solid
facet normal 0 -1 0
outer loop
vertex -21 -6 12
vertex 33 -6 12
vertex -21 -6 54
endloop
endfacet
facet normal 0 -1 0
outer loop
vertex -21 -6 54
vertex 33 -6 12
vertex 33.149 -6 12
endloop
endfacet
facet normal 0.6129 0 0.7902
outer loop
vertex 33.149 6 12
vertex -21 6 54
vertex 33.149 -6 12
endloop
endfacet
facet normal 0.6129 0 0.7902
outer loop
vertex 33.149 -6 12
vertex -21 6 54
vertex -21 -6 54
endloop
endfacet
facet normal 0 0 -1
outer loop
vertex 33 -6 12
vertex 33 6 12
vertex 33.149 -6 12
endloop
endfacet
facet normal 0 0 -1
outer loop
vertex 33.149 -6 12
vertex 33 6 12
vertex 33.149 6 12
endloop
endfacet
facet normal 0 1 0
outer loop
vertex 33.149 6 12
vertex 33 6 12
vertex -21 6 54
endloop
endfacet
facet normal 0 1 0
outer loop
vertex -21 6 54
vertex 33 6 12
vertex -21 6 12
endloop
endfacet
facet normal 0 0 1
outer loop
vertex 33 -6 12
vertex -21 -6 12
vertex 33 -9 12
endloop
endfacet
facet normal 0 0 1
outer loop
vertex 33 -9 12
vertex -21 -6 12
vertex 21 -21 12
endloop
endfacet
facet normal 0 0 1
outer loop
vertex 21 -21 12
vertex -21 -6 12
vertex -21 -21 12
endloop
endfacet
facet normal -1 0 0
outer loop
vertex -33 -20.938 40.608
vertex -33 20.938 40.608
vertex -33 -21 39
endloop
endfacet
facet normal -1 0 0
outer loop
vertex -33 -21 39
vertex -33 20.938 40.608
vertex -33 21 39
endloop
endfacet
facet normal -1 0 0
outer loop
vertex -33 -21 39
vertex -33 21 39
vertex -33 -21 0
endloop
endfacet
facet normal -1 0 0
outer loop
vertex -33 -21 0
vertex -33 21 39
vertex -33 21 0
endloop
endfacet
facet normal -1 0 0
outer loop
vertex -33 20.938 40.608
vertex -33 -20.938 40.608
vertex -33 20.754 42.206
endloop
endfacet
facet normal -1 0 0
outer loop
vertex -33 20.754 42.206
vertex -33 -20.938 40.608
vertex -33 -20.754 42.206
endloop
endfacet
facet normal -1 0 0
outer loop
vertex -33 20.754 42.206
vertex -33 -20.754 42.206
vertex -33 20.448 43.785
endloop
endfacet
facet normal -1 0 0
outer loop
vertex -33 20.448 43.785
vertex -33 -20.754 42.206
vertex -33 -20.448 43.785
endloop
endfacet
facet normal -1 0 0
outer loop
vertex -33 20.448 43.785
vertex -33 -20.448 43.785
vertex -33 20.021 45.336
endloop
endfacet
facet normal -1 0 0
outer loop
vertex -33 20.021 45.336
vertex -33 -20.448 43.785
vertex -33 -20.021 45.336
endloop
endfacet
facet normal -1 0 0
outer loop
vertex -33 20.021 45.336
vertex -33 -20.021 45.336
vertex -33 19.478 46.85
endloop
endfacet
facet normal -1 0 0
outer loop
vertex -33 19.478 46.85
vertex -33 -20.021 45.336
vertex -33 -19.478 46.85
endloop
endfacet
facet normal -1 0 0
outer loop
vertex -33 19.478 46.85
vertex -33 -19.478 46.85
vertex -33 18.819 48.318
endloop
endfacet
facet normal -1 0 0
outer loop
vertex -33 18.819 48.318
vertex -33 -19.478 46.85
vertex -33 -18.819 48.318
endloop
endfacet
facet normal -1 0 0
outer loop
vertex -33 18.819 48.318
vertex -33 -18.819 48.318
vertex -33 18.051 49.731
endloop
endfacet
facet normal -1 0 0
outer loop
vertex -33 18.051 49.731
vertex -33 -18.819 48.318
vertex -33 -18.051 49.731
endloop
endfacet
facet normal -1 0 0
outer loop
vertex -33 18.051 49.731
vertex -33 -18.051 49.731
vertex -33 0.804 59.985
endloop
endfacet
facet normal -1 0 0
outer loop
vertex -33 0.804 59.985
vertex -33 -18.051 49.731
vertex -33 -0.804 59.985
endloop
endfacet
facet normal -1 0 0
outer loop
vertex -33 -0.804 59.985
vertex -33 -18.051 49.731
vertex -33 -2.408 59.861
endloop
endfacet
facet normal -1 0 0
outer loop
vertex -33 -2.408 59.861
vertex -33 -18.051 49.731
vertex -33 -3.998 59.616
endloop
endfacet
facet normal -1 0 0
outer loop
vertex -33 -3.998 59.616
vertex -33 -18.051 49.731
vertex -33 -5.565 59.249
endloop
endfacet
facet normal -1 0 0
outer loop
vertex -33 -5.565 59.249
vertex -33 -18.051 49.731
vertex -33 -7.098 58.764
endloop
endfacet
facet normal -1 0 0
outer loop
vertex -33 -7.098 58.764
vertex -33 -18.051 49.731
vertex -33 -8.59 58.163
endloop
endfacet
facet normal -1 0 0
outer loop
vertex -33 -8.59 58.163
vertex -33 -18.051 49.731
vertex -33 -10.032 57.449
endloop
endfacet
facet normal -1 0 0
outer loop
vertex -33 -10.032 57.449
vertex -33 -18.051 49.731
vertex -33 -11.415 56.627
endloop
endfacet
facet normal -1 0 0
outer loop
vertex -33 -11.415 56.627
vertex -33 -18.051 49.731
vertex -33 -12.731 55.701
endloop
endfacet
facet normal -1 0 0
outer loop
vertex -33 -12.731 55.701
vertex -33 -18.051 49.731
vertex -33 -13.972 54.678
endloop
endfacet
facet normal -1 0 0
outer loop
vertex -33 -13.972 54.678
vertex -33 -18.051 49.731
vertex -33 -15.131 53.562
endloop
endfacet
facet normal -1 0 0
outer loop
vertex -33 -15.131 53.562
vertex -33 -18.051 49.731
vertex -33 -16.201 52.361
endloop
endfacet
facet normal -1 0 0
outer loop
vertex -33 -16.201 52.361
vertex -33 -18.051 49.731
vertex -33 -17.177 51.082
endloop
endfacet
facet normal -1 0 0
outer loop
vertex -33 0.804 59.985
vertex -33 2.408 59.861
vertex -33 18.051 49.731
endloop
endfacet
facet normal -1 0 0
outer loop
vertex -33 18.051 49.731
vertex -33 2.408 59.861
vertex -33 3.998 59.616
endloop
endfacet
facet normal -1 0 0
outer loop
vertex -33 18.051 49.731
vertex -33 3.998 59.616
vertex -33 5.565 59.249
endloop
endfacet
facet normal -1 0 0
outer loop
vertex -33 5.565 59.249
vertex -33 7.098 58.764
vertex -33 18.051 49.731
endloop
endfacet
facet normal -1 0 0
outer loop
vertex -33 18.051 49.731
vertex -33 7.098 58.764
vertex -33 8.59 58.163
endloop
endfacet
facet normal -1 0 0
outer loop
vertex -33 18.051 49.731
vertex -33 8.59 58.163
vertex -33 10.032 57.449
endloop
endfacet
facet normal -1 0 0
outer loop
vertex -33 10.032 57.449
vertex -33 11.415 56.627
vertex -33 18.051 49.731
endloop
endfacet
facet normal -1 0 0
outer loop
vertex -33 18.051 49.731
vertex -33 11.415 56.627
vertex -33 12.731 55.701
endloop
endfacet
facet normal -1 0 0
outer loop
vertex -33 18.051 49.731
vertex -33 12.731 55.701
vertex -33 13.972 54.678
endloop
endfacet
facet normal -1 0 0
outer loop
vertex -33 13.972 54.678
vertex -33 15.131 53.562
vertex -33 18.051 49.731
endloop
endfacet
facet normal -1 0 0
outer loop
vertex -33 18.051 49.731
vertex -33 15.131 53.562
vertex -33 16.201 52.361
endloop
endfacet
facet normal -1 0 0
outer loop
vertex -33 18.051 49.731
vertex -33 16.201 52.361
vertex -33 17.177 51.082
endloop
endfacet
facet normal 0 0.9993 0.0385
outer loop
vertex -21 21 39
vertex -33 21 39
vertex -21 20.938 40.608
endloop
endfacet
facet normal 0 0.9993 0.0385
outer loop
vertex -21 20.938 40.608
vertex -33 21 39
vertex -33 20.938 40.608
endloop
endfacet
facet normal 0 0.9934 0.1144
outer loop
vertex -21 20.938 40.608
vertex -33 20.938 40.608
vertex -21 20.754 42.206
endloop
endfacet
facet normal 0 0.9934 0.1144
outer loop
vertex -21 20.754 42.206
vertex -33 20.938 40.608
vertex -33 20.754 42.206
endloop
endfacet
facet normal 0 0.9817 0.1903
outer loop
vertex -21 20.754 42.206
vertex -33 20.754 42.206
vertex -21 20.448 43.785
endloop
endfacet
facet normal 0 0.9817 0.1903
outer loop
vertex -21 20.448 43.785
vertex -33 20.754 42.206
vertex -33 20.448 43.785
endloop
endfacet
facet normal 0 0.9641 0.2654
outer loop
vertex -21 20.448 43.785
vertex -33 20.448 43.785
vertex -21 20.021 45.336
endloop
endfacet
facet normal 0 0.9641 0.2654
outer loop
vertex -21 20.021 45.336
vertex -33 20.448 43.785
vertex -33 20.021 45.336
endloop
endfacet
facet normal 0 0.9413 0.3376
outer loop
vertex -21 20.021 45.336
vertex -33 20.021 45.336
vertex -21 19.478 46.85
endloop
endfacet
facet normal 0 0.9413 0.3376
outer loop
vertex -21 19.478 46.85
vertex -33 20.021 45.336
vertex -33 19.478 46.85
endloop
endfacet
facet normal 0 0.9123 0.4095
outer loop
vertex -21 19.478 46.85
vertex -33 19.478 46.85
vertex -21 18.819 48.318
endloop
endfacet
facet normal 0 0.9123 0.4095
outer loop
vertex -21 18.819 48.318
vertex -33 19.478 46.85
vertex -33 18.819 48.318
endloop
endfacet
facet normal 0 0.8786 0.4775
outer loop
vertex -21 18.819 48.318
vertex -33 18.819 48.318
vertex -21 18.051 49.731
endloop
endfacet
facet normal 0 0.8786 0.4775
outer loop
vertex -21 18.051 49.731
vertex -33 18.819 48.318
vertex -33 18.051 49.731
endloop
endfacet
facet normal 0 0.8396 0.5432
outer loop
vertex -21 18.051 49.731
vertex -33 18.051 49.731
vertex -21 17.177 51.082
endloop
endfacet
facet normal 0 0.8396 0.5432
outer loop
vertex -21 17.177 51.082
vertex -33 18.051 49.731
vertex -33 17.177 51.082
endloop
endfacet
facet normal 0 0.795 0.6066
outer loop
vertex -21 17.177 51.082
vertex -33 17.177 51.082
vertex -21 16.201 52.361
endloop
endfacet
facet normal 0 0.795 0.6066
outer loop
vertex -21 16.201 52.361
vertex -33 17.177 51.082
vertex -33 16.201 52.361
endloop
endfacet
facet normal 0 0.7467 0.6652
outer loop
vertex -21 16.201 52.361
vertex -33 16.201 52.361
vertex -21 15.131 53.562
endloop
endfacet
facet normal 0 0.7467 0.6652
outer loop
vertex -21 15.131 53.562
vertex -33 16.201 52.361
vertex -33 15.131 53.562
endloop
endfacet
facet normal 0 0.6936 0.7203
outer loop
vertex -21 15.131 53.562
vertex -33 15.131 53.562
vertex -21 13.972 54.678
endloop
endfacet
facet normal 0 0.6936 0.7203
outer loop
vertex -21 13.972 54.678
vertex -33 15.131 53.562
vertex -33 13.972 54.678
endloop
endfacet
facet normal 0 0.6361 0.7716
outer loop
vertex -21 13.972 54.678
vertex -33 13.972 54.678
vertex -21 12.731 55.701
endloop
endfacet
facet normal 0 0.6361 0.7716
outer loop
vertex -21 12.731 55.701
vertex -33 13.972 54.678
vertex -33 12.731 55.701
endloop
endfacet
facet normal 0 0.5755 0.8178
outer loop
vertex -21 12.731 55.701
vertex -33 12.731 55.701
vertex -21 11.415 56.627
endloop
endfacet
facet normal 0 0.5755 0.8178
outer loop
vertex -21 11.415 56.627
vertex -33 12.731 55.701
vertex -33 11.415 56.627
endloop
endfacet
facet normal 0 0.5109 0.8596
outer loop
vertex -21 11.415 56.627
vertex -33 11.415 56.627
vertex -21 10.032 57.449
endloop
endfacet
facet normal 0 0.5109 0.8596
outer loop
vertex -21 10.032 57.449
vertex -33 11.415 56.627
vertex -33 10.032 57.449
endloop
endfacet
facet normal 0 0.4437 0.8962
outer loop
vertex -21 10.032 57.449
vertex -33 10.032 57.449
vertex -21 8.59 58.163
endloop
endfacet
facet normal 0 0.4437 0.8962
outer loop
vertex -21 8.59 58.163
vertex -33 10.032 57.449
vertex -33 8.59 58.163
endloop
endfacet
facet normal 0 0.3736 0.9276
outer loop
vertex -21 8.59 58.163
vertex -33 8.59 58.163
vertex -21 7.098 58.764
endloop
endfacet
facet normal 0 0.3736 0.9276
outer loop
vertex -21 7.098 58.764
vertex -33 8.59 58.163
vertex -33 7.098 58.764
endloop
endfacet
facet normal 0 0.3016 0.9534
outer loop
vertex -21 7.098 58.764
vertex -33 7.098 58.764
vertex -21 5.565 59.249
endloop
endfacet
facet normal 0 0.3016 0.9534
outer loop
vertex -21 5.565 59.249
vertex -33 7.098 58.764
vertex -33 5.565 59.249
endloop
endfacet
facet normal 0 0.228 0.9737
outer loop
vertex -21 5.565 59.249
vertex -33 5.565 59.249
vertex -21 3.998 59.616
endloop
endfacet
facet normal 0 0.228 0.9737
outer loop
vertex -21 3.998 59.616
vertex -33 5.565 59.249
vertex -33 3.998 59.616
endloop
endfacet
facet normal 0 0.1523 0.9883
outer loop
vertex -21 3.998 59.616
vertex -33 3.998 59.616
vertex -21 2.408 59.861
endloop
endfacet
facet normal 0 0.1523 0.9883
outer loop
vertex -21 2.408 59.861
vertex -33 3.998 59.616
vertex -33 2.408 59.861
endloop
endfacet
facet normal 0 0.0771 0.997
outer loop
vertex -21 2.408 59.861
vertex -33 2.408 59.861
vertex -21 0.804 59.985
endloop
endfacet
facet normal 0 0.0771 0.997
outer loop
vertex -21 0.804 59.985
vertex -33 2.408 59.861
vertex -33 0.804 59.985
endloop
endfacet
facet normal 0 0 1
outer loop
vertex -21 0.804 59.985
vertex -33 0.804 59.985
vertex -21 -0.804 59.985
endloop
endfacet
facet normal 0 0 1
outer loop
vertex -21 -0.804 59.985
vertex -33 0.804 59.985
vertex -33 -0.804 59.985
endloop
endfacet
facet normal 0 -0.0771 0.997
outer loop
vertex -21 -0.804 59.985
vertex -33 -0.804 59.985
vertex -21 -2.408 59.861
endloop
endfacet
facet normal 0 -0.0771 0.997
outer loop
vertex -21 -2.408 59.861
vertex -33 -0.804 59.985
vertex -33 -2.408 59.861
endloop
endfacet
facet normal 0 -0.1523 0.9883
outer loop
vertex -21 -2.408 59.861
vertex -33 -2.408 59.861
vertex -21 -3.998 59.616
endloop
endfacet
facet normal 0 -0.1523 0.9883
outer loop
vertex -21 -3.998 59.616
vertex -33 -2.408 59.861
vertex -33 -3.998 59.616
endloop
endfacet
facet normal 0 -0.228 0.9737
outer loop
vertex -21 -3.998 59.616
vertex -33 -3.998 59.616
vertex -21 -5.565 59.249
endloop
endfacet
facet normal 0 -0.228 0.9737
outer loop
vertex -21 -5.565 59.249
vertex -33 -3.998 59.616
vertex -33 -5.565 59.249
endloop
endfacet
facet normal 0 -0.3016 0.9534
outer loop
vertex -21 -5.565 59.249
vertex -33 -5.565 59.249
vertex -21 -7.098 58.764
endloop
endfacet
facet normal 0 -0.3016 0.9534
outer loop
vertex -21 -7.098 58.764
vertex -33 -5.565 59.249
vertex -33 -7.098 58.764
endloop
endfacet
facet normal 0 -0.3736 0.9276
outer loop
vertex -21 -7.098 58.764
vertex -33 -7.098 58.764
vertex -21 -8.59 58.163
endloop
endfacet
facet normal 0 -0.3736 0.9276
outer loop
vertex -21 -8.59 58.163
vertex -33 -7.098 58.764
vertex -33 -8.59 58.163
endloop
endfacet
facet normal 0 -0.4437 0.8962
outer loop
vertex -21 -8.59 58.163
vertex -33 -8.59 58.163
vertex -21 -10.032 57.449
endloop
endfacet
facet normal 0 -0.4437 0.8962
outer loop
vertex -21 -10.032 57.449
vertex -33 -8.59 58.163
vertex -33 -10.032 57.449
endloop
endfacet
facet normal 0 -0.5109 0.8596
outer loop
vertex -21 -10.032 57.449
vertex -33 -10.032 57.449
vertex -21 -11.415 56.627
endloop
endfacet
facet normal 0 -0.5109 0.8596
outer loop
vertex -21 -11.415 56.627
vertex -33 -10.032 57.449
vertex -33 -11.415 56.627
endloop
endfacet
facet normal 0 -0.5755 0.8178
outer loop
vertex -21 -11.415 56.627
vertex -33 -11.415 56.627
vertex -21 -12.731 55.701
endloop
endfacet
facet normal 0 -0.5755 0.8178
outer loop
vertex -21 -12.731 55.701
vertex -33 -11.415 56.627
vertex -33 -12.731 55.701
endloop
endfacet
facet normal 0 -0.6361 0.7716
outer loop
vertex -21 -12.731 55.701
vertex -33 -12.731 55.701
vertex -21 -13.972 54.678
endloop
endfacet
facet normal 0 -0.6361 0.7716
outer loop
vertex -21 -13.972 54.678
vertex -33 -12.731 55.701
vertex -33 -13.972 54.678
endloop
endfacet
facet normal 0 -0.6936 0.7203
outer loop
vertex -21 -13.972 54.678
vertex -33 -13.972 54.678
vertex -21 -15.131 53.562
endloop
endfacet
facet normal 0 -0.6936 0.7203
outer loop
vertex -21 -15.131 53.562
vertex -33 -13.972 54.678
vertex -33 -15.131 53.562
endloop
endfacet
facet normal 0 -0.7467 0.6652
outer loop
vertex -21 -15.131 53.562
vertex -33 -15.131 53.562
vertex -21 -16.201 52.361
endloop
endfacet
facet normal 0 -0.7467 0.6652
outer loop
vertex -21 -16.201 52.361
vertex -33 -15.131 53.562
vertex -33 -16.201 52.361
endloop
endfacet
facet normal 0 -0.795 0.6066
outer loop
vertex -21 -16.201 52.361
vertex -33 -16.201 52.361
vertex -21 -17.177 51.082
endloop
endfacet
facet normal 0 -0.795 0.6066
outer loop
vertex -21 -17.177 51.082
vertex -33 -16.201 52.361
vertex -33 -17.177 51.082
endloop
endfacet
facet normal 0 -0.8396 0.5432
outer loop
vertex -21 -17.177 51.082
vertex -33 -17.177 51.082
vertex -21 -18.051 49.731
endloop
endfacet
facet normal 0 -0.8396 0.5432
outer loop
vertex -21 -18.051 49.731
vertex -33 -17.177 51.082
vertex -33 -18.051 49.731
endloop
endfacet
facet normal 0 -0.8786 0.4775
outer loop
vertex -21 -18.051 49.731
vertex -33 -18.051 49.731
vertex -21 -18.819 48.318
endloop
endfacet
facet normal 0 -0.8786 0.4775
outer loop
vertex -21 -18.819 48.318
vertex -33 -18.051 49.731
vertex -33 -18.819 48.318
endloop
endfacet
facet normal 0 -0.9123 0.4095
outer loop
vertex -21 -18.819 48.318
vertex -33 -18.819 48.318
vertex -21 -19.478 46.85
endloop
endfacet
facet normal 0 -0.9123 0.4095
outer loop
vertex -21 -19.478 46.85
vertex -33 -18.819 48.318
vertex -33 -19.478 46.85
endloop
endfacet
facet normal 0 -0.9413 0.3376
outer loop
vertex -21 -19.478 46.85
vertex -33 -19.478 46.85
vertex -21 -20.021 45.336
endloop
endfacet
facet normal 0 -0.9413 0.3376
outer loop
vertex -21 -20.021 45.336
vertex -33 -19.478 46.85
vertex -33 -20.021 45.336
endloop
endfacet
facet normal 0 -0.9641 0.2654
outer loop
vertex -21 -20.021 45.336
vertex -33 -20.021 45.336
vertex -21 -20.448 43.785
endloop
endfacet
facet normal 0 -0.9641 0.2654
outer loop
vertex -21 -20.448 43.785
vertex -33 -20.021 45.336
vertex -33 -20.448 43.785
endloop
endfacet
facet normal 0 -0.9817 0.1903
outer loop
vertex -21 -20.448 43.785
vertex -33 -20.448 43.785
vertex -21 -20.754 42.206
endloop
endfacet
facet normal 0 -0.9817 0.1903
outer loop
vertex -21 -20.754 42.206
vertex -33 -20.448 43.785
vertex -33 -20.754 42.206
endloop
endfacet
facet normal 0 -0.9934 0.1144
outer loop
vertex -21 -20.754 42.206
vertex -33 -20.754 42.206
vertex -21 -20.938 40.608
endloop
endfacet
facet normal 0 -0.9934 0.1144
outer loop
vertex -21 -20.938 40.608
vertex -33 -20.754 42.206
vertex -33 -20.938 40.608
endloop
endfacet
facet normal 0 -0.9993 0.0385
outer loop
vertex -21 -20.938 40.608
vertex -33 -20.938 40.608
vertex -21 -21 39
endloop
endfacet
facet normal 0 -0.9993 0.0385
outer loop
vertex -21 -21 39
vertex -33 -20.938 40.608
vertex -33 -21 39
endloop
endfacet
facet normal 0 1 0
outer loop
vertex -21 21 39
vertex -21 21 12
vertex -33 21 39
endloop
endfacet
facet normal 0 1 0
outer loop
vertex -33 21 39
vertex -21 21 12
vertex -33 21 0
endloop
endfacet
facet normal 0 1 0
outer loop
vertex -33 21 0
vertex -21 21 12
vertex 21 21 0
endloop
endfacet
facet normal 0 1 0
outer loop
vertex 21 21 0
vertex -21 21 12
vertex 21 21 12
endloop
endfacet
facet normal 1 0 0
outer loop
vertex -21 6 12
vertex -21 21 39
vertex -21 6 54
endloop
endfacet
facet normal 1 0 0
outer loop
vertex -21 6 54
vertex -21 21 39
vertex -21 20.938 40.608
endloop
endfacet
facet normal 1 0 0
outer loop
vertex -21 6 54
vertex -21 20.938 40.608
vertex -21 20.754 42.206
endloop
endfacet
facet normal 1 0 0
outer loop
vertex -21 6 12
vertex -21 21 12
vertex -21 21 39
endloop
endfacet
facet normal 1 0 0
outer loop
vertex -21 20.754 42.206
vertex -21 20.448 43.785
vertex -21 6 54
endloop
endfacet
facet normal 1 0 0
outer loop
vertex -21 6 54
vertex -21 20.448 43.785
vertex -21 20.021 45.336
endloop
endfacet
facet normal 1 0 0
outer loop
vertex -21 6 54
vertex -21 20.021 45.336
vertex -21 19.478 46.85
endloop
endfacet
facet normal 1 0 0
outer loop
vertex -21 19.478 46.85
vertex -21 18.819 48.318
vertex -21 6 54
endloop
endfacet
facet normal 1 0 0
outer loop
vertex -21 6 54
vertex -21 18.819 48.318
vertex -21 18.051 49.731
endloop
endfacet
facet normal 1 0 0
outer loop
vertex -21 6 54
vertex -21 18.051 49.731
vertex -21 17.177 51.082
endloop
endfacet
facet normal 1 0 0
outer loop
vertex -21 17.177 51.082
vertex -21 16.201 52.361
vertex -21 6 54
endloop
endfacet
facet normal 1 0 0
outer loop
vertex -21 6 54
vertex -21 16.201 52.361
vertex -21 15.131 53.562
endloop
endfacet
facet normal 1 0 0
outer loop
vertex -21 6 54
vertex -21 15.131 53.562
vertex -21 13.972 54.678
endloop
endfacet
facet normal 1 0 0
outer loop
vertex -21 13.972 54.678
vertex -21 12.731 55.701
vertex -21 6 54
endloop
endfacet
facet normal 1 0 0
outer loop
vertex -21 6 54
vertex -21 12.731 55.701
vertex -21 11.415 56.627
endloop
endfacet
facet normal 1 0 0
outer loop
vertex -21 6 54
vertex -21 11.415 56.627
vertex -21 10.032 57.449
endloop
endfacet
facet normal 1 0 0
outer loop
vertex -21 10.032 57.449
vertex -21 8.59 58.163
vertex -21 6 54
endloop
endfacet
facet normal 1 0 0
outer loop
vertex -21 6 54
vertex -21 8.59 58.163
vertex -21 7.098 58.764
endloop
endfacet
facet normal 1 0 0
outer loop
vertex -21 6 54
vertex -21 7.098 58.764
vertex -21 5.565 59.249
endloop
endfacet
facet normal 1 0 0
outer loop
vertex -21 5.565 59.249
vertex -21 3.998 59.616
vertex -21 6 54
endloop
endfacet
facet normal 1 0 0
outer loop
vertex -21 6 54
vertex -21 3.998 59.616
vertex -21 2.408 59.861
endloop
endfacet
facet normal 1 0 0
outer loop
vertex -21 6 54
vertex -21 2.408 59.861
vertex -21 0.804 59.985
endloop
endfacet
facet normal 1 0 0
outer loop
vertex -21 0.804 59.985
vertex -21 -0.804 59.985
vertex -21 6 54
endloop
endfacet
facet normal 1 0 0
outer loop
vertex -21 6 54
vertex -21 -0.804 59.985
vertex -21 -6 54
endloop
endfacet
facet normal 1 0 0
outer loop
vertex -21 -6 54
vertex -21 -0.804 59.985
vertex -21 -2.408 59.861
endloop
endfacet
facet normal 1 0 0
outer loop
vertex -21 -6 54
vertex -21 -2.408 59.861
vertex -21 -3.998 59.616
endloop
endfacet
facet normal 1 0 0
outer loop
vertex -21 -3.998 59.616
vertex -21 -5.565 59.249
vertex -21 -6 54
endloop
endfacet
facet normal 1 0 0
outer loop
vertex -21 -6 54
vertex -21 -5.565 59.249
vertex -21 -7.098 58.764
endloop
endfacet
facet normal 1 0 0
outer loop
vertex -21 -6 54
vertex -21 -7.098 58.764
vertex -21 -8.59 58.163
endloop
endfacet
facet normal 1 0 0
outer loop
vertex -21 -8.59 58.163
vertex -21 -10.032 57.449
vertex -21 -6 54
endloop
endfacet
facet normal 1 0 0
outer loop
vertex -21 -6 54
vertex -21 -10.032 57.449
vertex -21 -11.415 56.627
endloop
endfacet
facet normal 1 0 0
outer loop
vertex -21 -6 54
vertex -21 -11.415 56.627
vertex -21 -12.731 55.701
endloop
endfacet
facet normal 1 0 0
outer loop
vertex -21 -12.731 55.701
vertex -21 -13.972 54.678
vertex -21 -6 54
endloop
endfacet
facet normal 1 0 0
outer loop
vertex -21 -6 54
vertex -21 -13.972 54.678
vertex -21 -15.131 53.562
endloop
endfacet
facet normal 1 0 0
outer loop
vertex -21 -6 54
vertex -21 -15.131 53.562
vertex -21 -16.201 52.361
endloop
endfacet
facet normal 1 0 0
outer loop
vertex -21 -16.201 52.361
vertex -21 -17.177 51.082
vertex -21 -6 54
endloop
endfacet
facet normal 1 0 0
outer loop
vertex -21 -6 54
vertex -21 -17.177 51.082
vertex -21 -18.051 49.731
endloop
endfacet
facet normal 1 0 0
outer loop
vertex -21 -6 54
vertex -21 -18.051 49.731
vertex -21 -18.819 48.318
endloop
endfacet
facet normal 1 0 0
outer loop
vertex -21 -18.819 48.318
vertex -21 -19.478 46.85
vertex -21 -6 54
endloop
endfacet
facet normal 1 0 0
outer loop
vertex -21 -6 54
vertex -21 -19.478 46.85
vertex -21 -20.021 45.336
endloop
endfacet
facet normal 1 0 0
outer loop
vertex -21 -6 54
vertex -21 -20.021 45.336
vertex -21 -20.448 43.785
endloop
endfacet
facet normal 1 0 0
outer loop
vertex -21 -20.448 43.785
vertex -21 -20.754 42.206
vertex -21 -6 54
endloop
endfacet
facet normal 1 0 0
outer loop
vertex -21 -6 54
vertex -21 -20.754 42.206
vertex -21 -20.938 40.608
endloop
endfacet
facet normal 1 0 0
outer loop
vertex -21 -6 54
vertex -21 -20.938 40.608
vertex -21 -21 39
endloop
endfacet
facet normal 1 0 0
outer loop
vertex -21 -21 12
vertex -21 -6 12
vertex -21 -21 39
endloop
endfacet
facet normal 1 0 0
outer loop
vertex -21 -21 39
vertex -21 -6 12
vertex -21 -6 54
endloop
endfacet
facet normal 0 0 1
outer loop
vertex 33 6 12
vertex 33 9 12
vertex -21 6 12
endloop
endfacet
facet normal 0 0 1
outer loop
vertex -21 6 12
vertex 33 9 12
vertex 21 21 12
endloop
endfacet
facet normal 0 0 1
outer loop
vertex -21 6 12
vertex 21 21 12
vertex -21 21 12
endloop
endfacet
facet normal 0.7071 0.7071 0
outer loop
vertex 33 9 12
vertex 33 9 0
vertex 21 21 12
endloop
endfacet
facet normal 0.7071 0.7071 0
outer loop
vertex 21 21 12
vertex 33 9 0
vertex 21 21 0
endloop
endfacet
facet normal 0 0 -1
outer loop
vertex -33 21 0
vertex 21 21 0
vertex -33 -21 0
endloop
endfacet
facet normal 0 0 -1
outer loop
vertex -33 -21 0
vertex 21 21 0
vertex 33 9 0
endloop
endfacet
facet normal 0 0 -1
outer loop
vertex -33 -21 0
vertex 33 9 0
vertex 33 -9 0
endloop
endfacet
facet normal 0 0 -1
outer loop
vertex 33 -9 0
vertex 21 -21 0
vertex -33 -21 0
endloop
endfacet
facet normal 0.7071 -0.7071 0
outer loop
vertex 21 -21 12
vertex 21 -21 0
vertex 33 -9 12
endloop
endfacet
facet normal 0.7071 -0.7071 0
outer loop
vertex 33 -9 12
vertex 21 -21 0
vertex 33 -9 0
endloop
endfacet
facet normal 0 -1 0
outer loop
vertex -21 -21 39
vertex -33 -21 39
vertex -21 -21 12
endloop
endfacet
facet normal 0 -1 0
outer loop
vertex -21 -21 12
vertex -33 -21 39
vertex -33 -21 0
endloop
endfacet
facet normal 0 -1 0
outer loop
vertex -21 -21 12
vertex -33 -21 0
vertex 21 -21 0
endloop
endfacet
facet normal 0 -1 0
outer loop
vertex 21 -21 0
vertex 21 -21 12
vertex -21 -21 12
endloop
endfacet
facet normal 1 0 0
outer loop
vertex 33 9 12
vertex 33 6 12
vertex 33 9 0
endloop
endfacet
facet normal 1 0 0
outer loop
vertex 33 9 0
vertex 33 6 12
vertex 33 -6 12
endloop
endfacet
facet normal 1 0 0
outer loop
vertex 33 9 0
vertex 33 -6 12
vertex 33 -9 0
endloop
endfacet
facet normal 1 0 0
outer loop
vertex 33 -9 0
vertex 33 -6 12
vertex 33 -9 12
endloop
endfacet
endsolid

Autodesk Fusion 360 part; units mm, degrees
sketch "Sketch1" plane through (0, 0, 0) normal (0, 0, 1) x (1, 0, 0)
  line L0 (33, -21) -> (-33, -21)
  line L1 (-33, -21) -> (-33, 21)
  line L2 (-33, 21) -> (33, 21)
  line L3 (33, 21) -> (33, -21)
  line L4 (33, -21) -> (-33, 21) construction
  line L5 (-33, -21) -> (33, 21) construction
  dimension "d1" = 66
  dimension "d2" = 42
extrude "Extrude1" add sketch "Sketch1" along normal blind 12
chamfer "Chamfer1" distance 12 angle 45 2 edges at (33, -21, 6) (33, 21, 6)
sketch "Sketch2" plane through (0, 0, 12) normal (0, 0, 1) x (-1, 0, 0)
  line L0 (-33, -9) -> (-21, -21)
  line L1 (-21, -21) -> (33, -21)
  line L2 (33, -21) -> (33, 21)
  line L3 (33, 21) -> (-21, 21)
  line L4 (-21, 21) -> (-33, 9)
  line L5 (-33, 9) -> (-33, -9)
  line L6 (33, -21) -> (21, -21)
  line L7 (21, -21) -> (21, 21)
  line L8 (21, 21) -> (33, 21)
  line L9 (33, 21) -> (33, -21)
  dimension "d6" = 12
extrude "Extrude2" add sketch "Sketch2" along normal blind 48 contours L1 L2 L3 L6 L7 L8 L9
fillet "Fillet1" radius 21 2 edges at (-27, 21, 60) (-27, -21, 60)
sketch "Sketch3" plane through (0, 0, 0) normal (0, 1, 0) x (1, 0, 0)
  line L0 (-21, -12) -> (-21, -54)
  line L1 (-21, -54) -> (33.1488, -12)
  line L2 (33.1488, -12) -> (-21, -12)
  dimension "d11" = 42
extrude "Extrude3" add sketch "Sketch3" along normal mid plane 12
equation "d7 = 60.00 mm - 12.00 mm"
